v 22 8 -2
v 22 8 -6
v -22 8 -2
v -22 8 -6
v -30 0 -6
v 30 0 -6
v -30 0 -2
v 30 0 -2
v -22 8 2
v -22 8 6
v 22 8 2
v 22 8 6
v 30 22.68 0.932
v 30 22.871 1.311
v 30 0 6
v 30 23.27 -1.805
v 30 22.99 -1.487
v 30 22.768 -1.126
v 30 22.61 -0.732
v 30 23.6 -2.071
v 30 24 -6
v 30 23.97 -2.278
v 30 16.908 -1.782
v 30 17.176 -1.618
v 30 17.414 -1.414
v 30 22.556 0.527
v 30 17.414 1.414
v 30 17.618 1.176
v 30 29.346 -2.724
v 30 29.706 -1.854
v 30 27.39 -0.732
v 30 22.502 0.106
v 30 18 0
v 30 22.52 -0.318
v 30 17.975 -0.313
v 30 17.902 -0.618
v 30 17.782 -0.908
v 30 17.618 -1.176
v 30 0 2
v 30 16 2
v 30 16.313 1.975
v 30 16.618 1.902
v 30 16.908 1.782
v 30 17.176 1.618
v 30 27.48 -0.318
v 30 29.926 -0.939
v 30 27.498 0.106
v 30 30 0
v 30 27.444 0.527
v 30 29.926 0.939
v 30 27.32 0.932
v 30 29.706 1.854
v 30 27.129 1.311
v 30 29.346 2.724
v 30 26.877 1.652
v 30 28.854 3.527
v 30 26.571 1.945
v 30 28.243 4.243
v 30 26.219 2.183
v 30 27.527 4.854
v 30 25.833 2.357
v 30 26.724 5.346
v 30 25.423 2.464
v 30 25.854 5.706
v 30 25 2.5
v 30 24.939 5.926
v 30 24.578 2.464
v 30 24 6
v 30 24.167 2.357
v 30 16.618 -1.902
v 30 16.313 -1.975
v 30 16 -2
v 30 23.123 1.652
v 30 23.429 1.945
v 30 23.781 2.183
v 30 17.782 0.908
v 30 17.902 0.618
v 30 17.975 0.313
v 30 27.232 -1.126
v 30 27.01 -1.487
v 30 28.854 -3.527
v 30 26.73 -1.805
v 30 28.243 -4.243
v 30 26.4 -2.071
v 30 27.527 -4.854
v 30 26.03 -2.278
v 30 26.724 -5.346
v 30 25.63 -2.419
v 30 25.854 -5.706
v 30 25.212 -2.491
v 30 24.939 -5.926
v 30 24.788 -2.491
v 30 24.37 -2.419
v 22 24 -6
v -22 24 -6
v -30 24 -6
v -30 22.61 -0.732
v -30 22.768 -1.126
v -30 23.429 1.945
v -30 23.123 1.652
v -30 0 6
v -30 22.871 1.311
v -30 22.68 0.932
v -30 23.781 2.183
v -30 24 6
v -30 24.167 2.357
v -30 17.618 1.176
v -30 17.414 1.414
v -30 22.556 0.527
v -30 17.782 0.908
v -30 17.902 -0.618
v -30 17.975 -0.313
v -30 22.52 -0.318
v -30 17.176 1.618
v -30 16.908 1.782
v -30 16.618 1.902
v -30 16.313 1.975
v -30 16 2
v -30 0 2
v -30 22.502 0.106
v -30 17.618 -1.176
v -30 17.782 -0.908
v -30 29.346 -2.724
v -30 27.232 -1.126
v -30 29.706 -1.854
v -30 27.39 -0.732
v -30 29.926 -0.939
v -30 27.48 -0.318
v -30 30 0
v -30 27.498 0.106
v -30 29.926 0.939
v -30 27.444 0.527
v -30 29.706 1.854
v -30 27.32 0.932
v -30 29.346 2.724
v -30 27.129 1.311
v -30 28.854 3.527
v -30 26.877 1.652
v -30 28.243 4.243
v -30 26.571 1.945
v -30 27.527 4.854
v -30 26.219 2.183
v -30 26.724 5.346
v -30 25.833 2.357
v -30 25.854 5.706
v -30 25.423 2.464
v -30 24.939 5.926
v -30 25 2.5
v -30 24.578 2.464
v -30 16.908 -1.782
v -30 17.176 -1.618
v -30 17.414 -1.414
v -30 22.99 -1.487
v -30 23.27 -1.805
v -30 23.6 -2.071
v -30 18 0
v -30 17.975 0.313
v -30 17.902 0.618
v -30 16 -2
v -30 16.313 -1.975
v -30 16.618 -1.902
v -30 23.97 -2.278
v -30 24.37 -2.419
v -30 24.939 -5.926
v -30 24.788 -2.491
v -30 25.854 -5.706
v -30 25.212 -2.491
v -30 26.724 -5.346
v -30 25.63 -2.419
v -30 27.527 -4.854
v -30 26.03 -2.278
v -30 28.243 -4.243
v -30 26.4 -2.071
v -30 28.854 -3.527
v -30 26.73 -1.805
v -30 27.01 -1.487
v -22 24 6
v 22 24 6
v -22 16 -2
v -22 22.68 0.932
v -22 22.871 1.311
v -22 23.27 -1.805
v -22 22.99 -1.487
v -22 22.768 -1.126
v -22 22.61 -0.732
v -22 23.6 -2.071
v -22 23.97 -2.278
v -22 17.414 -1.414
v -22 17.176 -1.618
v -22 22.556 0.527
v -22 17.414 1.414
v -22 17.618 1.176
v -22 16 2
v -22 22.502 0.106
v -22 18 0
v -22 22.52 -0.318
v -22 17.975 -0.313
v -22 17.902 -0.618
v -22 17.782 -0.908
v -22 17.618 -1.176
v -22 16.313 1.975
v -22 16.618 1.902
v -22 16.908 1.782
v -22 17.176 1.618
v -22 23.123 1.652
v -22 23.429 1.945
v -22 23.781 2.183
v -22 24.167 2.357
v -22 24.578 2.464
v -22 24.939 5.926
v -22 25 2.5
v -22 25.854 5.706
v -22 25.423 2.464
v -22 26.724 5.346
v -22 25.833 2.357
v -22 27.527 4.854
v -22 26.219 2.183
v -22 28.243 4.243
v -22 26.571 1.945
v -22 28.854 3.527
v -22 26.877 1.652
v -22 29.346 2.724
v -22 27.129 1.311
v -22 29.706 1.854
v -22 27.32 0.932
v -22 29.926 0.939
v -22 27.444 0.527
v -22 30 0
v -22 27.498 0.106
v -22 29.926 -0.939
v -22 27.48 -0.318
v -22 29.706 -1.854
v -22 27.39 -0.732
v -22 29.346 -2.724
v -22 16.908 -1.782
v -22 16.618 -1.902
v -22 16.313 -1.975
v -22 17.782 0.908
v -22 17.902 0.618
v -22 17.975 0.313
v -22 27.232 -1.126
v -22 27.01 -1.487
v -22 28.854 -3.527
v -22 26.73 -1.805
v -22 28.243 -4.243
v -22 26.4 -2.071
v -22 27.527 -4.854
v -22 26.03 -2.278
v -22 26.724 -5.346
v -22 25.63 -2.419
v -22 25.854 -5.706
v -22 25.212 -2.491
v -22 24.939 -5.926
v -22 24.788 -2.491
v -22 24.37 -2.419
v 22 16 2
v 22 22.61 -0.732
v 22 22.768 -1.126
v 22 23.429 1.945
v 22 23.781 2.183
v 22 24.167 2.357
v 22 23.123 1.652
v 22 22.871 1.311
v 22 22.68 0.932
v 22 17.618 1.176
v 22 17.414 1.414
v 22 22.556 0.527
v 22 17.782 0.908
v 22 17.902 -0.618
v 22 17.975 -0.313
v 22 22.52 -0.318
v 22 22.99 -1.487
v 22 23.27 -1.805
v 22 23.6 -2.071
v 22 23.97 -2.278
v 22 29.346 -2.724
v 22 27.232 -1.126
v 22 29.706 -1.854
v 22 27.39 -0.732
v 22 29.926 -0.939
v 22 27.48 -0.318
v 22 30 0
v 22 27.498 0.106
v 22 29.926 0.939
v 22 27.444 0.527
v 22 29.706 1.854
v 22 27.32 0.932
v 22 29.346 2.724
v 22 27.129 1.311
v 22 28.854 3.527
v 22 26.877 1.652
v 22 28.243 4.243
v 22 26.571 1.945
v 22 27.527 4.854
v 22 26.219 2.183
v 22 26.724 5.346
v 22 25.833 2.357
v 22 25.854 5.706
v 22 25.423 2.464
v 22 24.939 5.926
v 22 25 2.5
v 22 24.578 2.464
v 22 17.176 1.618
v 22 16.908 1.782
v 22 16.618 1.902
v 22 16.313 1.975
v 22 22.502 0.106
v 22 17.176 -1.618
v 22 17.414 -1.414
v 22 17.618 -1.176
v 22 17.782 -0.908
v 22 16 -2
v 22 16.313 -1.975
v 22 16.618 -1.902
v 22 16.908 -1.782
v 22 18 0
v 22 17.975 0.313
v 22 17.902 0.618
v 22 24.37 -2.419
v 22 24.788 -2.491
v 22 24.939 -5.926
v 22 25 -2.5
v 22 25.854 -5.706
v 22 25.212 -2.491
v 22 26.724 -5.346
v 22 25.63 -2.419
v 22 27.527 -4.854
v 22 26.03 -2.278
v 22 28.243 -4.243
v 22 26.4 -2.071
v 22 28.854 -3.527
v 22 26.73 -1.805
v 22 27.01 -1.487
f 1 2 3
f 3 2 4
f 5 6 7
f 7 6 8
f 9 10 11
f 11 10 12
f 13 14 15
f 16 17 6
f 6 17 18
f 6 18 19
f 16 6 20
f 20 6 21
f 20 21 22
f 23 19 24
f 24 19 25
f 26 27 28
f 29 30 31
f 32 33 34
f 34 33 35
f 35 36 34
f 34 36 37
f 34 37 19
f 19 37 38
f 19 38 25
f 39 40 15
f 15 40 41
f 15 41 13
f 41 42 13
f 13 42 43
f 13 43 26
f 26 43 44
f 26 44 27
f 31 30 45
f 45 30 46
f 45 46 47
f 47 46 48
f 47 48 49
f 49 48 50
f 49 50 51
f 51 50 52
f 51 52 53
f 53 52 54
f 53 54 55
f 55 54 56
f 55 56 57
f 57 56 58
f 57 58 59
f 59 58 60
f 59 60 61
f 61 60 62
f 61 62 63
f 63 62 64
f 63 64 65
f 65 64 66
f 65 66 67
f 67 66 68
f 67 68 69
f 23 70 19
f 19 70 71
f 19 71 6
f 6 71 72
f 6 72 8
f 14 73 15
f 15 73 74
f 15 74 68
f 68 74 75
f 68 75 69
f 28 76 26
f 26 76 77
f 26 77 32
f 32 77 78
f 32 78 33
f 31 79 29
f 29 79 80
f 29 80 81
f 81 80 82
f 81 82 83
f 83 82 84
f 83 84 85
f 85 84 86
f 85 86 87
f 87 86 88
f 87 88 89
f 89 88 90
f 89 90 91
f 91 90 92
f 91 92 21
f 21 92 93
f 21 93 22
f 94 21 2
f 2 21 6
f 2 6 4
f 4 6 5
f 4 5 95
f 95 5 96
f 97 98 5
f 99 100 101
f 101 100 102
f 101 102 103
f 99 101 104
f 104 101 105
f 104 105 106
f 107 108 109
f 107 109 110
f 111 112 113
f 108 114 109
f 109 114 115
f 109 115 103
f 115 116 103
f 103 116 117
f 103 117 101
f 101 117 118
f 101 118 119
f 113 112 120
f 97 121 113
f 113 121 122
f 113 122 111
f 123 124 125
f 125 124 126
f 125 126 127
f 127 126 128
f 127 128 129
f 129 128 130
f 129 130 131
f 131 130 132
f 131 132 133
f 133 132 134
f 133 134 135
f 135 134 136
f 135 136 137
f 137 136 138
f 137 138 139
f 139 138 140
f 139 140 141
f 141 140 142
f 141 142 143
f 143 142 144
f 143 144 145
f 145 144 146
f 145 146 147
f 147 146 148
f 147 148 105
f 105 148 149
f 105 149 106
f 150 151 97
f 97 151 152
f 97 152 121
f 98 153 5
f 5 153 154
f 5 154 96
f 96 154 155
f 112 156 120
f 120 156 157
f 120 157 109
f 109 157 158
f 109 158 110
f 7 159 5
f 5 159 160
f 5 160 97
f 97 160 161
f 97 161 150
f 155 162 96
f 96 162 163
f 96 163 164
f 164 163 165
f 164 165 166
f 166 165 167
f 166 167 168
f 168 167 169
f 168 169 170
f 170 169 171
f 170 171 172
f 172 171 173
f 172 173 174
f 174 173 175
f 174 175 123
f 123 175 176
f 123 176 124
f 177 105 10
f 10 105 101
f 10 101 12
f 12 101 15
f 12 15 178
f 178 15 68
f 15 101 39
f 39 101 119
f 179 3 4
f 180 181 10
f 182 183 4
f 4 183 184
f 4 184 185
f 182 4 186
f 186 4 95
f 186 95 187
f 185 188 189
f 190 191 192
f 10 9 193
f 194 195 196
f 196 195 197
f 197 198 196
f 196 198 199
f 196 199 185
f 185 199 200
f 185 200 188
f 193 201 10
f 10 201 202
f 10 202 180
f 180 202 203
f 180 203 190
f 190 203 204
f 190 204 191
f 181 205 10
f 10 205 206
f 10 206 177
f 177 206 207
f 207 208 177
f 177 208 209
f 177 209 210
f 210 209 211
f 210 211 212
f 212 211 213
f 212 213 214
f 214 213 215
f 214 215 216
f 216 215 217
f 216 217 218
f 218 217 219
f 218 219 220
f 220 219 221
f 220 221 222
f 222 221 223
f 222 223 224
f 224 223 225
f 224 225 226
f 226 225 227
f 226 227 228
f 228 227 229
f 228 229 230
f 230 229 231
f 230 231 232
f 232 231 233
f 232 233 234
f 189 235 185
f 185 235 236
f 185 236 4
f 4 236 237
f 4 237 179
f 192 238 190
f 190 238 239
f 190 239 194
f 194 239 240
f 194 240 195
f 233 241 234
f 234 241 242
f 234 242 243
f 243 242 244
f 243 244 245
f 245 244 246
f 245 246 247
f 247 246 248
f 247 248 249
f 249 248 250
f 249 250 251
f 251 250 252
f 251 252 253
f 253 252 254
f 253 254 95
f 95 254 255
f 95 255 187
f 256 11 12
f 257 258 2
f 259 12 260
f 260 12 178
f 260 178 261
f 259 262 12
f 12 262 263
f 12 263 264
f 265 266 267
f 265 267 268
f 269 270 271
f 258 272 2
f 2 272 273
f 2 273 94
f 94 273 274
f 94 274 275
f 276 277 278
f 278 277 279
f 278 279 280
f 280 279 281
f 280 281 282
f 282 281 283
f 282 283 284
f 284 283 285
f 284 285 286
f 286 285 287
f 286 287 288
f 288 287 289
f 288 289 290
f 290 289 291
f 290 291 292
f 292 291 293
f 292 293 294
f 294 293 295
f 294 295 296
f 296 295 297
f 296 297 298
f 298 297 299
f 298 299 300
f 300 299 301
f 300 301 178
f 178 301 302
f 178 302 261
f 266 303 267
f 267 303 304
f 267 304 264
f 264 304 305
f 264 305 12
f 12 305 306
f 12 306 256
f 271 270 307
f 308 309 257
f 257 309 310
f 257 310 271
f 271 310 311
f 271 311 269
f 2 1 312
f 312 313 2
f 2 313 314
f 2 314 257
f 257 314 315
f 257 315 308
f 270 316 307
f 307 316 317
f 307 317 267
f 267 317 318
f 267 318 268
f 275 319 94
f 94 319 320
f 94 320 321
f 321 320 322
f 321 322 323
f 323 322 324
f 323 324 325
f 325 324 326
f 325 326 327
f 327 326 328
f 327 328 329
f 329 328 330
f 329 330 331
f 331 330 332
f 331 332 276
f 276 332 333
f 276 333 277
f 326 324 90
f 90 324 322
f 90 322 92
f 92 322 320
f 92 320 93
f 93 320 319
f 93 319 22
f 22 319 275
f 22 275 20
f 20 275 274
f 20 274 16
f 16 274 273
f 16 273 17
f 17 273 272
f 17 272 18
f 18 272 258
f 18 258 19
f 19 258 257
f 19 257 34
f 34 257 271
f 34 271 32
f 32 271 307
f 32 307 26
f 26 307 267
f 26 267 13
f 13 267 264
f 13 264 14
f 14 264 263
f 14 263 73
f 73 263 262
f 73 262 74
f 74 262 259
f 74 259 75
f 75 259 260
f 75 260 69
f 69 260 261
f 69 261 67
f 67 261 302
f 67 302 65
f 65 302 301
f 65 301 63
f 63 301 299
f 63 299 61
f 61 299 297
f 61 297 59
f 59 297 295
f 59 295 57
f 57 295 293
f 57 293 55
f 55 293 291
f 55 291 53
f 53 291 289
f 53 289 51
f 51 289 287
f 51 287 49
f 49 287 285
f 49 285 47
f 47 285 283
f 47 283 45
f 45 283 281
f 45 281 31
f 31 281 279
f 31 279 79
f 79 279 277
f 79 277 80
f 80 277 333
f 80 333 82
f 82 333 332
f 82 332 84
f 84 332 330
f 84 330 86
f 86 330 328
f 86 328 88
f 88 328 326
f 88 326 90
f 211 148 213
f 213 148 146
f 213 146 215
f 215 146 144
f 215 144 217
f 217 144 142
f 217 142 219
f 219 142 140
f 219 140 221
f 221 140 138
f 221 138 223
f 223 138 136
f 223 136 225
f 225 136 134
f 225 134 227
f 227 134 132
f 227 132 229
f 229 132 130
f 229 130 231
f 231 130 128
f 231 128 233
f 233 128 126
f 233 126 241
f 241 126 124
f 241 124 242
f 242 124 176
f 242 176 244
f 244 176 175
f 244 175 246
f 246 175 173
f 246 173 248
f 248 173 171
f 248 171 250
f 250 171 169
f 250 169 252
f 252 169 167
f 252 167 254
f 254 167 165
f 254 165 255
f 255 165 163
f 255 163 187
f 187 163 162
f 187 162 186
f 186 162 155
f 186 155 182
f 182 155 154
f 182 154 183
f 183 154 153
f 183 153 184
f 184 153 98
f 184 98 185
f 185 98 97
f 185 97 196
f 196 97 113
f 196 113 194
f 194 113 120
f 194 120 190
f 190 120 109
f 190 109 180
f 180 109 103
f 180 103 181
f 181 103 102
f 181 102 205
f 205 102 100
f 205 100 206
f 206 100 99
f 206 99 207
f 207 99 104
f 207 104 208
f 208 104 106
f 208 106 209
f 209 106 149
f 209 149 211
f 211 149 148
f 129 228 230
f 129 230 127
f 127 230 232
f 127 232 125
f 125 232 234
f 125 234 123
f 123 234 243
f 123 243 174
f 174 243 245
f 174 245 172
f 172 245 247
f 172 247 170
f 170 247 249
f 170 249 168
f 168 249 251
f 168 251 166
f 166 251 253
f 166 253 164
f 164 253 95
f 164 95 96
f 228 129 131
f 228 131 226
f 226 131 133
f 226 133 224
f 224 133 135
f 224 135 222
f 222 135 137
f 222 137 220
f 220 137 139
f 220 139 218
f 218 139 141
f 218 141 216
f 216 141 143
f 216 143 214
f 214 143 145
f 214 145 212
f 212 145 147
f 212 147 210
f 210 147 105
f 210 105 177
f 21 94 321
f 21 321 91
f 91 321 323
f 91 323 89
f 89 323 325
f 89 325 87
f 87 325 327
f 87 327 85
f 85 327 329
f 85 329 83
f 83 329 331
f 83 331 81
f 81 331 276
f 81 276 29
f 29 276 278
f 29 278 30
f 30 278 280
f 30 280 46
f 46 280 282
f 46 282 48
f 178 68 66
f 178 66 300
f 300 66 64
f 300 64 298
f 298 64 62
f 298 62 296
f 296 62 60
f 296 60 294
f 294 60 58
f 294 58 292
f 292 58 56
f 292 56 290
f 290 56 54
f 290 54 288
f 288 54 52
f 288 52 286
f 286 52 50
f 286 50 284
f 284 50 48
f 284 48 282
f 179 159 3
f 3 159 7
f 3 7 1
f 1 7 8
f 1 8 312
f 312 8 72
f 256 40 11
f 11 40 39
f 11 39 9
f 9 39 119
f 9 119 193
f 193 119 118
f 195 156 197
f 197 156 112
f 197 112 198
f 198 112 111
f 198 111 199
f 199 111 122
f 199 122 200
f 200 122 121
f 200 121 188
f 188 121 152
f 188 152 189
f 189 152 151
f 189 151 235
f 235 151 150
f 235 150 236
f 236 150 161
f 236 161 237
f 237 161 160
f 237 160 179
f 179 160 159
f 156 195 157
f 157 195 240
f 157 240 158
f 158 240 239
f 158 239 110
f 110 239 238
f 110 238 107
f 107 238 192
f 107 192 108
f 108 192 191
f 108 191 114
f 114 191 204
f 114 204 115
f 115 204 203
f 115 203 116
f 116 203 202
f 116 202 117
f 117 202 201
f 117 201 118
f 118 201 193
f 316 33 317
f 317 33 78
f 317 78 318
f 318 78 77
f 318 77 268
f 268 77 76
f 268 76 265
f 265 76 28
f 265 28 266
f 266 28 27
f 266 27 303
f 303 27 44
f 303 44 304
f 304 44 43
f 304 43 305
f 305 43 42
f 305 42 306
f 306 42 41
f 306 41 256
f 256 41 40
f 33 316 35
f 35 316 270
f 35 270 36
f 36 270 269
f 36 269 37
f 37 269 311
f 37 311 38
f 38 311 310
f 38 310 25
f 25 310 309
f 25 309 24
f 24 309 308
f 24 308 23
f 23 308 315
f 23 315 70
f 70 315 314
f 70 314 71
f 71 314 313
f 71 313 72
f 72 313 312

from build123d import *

# Parameters (mm, degrees)
SKETCH1_W           = 60
SKETCH1_H           = 12
BOSS_EXTRUDE1_DEPTH = 8
SKETCH2_W           = 8
SKETCH2_H           = 12
BOSS_EXTRUDE2_DEPTH = 22
SKETCH3_R           = 2.5
CUT_EXTRUDE1_DEPTH  = 68.349832962
FILLET1_R           = 6
SKETCH5_W           = 60
SKETCH5_H           = 4
CUT_EXTRUDE2_DEPTH  = 18
FILLET2_R           = 2


with BuildPart() as part:
    # Sketch1 → Boss-Extrude1 (new body)
    with BuildSketch(Plane(origin=(0, 0, 0), x_dir=(1, 0, 0), z_dir=(0, 1, 0))):
        Rectangle(SKETCH1_W, SKETCH1_H)
    extrude(amount=BOSS_EXTRUDE1_DEPTH)

    # Sketch2 → Boss-Extrude2 (add)
    with BuildSketch(Plane(origin=(0, 8, 0), x_dir=(1, 0, 0), z_dir=(0, 1, 0))):
        with Locations((-26, 0)):
            Rectangle(SKETCH2_W, SKETCH2_H)
        with Locations((26, 0)):
            Rectangle(SKETCH2_W, SKETCH2_H)
    extrude(amount=BOSS_EXTRUDE2_DEPTH)

    # Sketch3 → Cut-Extrude1 (cut, through all)
    with BuildSketch(Plane.ZY.offset(30)):
        with Locations((0, 25)):
            Circle(SKETCH3_R)
    extrude(amount=-CUT_EXTRUDE1_DEPTH, mode=Mode.SUBTRACT)

    # Fillet1
    fillet1_edges = [part.edges().sort_by_distance(p)[0] for p in [
        (-26, 30, 6),
        (26, 30, 6),
        (26, 30, -6),
        (-26, 30, -6),
    ]]
    fillet(fillet1_edges, radius=FILLET1_R - 0.0001)  # a hair under: the kernel refuses the full size

    # Sketch5 → Cut-Extrude2 (cut)
    with BuildSketch(Plane.XZ):
        Rectangle(SKETCH5_W, SKETCH5_H)
    extrude(amount=-CUT_EXTRUDE2_DEPTH, mode=Mode.SUBTRACT)

    # Fillet2
    fillet2_edges = [part.edges().sort_by_distance(p)[0] for p in [
        (-26, 18, 2),
        (-26, 18, -2),
        (26, 18, -2),
        (26, 18, 2),
    ]]
    fillet(fillet2_edges, radius=FILLET2_R - 0.0001)  # a hair under: the kernel refuses the full size


solid = part.part
